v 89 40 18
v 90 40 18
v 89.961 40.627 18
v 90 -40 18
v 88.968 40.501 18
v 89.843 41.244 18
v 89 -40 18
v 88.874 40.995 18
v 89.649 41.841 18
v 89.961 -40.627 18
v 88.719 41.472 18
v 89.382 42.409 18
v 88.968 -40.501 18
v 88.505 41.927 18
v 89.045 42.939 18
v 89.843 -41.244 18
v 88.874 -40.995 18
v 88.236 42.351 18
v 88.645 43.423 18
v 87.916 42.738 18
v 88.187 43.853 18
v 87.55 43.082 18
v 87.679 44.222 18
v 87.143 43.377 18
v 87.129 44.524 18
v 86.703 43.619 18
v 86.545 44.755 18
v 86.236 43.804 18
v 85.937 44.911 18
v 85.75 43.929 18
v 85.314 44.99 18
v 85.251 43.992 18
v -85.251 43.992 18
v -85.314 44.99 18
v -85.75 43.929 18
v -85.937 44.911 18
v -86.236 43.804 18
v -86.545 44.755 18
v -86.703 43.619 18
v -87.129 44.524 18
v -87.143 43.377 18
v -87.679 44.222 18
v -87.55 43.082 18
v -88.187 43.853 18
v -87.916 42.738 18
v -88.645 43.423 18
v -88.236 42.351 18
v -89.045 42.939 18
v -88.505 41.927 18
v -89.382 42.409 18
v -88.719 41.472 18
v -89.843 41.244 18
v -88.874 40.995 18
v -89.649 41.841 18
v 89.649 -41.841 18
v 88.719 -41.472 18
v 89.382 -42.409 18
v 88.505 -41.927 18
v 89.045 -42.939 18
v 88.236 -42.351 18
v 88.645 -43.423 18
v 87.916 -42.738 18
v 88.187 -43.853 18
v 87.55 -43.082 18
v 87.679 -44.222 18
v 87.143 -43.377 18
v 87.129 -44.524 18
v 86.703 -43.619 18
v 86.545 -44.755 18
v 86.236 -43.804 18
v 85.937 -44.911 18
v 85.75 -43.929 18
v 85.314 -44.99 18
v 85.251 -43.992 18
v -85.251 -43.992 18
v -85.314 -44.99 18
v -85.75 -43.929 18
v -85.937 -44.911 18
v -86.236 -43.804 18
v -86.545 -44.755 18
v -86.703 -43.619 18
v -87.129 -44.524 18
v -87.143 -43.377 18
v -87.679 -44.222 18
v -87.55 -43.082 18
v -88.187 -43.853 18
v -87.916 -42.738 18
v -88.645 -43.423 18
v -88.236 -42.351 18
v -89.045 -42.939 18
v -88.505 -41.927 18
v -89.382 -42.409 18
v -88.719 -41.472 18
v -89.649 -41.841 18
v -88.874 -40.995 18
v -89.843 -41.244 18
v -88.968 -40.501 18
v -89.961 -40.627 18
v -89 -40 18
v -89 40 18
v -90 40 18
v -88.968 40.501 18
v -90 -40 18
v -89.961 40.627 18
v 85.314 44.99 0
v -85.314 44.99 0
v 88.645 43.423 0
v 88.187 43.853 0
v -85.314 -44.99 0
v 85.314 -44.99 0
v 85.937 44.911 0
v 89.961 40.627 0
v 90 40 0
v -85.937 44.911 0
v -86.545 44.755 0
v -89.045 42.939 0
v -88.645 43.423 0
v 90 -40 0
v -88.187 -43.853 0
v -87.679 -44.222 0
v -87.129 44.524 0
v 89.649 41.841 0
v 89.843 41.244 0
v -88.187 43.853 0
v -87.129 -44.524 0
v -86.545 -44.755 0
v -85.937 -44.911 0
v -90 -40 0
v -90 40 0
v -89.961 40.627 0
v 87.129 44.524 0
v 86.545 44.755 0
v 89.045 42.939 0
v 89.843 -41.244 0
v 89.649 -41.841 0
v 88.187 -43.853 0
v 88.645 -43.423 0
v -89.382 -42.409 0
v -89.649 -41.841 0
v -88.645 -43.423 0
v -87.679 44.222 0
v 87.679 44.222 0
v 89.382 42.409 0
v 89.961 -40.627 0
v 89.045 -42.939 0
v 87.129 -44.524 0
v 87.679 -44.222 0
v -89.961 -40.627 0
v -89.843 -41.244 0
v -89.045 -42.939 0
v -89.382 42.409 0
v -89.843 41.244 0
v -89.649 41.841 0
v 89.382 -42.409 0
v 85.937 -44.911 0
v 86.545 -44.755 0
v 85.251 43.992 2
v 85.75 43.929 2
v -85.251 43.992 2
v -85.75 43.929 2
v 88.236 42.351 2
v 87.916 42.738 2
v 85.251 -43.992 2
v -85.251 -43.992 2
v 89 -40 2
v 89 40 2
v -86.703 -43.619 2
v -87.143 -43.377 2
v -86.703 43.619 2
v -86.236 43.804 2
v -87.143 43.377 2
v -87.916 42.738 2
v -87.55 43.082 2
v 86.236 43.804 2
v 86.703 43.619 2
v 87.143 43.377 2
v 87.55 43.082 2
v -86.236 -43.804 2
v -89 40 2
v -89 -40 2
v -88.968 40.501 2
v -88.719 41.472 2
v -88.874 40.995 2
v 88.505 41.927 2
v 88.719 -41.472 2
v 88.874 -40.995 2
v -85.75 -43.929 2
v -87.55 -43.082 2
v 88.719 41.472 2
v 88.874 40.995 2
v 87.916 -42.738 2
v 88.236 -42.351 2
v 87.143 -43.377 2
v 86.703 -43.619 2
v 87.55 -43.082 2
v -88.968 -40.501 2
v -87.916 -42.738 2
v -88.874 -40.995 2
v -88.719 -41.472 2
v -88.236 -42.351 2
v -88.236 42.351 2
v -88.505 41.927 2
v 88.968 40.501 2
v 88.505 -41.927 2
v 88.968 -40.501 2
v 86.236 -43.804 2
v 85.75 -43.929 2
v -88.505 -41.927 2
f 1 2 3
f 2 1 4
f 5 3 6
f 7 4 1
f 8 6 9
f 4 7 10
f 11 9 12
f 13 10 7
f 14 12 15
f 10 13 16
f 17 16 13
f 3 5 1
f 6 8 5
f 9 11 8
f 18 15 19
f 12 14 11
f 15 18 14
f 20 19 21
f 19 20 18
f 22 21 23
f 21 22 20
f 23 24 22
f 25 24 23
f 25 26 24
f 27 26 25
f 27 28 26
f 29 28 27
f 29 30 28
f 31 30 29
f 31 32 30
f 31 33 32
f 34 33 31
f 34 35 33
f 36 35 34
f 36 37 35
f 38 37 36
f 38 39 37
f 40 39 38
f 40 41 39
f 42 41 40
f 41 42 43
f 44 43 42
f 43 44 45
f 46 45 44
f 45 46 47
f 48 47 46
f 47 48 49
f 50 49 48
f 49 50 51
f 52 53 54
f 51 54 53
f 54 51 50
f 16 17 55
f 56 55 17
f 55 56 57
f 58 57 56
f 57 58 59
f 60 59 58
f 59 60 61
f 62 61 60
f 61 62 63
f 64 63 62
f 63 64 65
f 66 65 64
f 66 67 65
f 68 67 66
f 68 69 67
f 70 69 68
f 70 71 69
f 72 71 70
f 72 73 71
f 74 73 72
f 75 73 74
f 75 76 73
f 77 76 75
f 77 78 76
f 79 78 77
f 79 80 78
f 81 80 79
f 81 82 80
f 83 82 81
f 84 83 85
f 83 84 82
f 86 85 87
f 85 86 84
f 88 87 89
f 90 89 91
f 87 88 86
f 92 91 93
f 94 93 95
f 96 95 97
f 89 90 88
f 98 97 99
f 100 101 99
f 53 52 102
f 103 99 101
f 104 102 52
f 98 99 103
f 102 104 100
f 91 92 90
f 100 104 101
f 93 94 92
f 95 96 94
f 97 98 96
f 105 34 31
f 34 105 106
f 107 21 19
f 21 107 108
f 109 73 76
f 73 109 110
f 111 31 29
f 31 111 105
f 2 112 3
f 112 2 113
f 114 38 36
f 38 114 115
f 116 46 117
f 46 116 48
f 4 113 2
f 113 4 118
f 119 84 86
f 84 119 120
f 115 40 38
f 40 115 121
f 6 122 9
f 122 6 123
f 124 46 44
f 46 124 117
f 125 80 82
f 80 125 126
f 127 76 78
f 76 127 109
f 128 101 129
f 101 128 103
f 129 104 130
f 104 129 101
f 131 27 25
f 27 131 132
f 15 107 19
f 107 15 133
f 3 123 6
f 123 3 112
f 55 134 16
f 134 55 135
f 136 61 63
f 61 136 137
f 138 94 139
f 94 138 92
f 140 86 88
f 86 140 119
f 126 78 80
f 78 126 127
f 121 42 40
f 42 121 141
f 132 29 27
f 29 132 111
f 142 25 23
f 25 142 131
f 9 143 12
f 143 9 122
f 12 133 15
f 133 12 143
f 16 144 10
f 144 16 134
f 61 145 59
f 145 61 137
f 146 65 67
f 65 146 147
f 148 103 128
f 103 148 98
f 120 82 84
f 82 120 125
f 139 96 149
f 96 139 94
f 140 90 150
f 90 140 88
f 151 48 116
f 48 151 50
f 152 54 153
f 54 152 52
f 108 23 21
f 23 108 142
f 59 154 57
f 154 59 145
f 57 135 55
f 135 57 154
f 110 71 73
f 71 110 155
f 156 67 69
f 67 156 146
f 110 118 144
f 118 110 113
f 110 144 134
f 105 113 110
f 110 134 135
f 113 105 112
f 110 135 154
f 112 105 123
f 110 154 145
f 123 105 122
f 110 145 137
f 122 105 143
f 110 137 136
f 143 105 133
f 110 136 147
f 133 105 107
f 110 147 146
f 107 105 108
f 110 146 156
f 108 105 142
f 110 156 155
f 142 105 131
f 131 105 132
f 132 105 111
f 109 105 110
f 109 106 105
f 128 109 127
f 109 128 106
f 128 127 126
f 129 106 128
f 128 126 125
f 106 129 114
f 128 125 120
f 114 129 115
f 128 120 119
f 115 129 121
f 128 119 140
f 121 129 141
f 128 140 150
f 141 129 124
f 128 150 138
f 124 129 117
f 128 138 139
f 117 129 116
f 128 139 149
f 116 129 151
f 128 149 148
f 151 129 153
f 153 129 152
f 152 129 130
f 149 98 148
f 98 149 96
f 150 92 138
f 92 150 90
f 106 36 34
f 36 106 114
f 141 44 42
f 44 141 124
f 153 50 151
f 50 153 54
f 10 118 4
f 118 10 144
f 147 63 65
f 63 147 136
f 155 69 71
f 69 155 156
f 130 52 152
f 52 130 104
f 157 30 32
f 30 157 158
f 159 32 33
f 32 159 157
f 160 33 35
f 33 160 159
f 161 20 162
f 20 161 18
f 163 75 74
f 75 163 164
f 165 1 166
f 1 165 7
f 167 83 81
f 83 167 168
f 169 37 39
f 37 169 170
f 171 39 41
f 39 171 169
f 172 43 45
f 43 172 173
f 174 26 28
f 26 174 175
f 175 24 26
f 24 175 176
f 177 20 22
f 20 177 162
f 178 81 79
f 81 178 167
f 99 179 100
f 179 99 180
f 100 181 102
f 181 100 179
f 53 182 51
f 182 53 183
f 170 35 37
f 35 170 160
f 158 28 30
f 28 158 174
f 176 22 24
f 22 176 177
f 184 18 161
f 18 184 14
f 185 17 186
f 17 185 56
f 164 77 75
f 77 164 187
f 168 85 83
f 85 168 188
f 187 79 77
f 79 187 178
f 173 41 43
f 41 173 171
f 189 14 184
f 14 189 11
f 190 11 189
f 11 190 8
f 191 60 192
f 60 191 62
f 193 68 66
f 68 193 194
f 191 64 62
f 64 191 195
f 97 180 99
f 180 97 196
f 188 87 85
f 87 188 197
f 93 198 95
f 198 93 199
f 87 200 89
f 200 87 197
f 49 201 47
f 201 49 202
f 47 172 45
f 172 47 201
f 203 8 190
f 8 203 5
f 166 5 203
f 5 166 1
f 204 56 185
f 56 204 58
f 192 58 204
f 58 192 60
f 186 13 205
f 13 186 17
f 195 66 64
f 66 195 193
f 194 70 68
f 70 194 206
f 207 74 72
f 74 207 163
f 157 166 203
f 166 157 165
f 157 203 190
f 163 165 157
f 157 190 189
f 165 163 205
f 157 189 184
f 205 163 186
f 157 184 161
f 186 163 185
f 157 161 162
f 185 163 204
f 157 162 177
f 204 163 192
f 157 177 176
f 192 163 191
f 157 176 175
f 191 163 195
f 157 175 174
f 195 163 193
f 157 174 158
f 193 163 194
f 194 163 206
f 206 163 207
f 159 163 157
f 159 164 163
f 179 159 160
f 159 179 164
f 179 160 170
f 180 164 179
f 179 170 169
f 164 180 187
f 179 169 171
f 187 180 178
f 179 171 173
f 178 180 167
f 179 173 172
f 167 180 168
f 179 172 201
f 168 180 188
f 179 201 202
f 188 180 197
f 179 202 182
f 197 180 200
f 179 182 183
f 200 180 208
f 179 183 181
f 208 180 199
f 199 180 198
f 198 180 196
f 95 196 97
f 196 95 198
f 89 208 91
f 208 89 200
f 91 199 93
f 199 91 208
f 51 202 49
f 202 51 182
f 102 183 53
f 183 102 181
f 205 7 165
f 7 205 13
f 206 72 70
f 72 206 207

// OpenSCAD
$fn = 50;


difference() {
	union() {
		hull() {
			translate(v = [-85.0000000000, 40.0000000000, 0]) {
				cylinder(h = 18, r = 5);
			}
			translate(v = [85.0000000000, 40.0000000000, 0]) {
				cylinder(h = 18, r = 5);
			}
			translate(v = [-85.0000000000, -40.0000000000, 0]) {
				cylinder(h = 18, r = 5);
			}
			translate(v = [85.0000000000, -40.0000000000, 0]) {
				cylinder(h = 18, r = 5);
			}
		}
	}
	union() {
		translate(v = [0, 0, 2]) {
			hull() {
				translate(v = [-85.0000000000, 40.0000000000, 0]) {
					cylinder(h = 16, r = 4);
				}
				translate(v = [85.0000000000, 40.0000000000, 0]) {
					cylinder(h = 16, r = 4);
				}
				translate(v = [-85.0000000000, -40.0000000000, 0]) {
					cylinder(h = 16, r = 4);
				}
				translate(v = [85.0000000000, -40.0000000000, 0]) {
					cylinder(h = 16, r = 4);
				}
			}
		}
	}
}
